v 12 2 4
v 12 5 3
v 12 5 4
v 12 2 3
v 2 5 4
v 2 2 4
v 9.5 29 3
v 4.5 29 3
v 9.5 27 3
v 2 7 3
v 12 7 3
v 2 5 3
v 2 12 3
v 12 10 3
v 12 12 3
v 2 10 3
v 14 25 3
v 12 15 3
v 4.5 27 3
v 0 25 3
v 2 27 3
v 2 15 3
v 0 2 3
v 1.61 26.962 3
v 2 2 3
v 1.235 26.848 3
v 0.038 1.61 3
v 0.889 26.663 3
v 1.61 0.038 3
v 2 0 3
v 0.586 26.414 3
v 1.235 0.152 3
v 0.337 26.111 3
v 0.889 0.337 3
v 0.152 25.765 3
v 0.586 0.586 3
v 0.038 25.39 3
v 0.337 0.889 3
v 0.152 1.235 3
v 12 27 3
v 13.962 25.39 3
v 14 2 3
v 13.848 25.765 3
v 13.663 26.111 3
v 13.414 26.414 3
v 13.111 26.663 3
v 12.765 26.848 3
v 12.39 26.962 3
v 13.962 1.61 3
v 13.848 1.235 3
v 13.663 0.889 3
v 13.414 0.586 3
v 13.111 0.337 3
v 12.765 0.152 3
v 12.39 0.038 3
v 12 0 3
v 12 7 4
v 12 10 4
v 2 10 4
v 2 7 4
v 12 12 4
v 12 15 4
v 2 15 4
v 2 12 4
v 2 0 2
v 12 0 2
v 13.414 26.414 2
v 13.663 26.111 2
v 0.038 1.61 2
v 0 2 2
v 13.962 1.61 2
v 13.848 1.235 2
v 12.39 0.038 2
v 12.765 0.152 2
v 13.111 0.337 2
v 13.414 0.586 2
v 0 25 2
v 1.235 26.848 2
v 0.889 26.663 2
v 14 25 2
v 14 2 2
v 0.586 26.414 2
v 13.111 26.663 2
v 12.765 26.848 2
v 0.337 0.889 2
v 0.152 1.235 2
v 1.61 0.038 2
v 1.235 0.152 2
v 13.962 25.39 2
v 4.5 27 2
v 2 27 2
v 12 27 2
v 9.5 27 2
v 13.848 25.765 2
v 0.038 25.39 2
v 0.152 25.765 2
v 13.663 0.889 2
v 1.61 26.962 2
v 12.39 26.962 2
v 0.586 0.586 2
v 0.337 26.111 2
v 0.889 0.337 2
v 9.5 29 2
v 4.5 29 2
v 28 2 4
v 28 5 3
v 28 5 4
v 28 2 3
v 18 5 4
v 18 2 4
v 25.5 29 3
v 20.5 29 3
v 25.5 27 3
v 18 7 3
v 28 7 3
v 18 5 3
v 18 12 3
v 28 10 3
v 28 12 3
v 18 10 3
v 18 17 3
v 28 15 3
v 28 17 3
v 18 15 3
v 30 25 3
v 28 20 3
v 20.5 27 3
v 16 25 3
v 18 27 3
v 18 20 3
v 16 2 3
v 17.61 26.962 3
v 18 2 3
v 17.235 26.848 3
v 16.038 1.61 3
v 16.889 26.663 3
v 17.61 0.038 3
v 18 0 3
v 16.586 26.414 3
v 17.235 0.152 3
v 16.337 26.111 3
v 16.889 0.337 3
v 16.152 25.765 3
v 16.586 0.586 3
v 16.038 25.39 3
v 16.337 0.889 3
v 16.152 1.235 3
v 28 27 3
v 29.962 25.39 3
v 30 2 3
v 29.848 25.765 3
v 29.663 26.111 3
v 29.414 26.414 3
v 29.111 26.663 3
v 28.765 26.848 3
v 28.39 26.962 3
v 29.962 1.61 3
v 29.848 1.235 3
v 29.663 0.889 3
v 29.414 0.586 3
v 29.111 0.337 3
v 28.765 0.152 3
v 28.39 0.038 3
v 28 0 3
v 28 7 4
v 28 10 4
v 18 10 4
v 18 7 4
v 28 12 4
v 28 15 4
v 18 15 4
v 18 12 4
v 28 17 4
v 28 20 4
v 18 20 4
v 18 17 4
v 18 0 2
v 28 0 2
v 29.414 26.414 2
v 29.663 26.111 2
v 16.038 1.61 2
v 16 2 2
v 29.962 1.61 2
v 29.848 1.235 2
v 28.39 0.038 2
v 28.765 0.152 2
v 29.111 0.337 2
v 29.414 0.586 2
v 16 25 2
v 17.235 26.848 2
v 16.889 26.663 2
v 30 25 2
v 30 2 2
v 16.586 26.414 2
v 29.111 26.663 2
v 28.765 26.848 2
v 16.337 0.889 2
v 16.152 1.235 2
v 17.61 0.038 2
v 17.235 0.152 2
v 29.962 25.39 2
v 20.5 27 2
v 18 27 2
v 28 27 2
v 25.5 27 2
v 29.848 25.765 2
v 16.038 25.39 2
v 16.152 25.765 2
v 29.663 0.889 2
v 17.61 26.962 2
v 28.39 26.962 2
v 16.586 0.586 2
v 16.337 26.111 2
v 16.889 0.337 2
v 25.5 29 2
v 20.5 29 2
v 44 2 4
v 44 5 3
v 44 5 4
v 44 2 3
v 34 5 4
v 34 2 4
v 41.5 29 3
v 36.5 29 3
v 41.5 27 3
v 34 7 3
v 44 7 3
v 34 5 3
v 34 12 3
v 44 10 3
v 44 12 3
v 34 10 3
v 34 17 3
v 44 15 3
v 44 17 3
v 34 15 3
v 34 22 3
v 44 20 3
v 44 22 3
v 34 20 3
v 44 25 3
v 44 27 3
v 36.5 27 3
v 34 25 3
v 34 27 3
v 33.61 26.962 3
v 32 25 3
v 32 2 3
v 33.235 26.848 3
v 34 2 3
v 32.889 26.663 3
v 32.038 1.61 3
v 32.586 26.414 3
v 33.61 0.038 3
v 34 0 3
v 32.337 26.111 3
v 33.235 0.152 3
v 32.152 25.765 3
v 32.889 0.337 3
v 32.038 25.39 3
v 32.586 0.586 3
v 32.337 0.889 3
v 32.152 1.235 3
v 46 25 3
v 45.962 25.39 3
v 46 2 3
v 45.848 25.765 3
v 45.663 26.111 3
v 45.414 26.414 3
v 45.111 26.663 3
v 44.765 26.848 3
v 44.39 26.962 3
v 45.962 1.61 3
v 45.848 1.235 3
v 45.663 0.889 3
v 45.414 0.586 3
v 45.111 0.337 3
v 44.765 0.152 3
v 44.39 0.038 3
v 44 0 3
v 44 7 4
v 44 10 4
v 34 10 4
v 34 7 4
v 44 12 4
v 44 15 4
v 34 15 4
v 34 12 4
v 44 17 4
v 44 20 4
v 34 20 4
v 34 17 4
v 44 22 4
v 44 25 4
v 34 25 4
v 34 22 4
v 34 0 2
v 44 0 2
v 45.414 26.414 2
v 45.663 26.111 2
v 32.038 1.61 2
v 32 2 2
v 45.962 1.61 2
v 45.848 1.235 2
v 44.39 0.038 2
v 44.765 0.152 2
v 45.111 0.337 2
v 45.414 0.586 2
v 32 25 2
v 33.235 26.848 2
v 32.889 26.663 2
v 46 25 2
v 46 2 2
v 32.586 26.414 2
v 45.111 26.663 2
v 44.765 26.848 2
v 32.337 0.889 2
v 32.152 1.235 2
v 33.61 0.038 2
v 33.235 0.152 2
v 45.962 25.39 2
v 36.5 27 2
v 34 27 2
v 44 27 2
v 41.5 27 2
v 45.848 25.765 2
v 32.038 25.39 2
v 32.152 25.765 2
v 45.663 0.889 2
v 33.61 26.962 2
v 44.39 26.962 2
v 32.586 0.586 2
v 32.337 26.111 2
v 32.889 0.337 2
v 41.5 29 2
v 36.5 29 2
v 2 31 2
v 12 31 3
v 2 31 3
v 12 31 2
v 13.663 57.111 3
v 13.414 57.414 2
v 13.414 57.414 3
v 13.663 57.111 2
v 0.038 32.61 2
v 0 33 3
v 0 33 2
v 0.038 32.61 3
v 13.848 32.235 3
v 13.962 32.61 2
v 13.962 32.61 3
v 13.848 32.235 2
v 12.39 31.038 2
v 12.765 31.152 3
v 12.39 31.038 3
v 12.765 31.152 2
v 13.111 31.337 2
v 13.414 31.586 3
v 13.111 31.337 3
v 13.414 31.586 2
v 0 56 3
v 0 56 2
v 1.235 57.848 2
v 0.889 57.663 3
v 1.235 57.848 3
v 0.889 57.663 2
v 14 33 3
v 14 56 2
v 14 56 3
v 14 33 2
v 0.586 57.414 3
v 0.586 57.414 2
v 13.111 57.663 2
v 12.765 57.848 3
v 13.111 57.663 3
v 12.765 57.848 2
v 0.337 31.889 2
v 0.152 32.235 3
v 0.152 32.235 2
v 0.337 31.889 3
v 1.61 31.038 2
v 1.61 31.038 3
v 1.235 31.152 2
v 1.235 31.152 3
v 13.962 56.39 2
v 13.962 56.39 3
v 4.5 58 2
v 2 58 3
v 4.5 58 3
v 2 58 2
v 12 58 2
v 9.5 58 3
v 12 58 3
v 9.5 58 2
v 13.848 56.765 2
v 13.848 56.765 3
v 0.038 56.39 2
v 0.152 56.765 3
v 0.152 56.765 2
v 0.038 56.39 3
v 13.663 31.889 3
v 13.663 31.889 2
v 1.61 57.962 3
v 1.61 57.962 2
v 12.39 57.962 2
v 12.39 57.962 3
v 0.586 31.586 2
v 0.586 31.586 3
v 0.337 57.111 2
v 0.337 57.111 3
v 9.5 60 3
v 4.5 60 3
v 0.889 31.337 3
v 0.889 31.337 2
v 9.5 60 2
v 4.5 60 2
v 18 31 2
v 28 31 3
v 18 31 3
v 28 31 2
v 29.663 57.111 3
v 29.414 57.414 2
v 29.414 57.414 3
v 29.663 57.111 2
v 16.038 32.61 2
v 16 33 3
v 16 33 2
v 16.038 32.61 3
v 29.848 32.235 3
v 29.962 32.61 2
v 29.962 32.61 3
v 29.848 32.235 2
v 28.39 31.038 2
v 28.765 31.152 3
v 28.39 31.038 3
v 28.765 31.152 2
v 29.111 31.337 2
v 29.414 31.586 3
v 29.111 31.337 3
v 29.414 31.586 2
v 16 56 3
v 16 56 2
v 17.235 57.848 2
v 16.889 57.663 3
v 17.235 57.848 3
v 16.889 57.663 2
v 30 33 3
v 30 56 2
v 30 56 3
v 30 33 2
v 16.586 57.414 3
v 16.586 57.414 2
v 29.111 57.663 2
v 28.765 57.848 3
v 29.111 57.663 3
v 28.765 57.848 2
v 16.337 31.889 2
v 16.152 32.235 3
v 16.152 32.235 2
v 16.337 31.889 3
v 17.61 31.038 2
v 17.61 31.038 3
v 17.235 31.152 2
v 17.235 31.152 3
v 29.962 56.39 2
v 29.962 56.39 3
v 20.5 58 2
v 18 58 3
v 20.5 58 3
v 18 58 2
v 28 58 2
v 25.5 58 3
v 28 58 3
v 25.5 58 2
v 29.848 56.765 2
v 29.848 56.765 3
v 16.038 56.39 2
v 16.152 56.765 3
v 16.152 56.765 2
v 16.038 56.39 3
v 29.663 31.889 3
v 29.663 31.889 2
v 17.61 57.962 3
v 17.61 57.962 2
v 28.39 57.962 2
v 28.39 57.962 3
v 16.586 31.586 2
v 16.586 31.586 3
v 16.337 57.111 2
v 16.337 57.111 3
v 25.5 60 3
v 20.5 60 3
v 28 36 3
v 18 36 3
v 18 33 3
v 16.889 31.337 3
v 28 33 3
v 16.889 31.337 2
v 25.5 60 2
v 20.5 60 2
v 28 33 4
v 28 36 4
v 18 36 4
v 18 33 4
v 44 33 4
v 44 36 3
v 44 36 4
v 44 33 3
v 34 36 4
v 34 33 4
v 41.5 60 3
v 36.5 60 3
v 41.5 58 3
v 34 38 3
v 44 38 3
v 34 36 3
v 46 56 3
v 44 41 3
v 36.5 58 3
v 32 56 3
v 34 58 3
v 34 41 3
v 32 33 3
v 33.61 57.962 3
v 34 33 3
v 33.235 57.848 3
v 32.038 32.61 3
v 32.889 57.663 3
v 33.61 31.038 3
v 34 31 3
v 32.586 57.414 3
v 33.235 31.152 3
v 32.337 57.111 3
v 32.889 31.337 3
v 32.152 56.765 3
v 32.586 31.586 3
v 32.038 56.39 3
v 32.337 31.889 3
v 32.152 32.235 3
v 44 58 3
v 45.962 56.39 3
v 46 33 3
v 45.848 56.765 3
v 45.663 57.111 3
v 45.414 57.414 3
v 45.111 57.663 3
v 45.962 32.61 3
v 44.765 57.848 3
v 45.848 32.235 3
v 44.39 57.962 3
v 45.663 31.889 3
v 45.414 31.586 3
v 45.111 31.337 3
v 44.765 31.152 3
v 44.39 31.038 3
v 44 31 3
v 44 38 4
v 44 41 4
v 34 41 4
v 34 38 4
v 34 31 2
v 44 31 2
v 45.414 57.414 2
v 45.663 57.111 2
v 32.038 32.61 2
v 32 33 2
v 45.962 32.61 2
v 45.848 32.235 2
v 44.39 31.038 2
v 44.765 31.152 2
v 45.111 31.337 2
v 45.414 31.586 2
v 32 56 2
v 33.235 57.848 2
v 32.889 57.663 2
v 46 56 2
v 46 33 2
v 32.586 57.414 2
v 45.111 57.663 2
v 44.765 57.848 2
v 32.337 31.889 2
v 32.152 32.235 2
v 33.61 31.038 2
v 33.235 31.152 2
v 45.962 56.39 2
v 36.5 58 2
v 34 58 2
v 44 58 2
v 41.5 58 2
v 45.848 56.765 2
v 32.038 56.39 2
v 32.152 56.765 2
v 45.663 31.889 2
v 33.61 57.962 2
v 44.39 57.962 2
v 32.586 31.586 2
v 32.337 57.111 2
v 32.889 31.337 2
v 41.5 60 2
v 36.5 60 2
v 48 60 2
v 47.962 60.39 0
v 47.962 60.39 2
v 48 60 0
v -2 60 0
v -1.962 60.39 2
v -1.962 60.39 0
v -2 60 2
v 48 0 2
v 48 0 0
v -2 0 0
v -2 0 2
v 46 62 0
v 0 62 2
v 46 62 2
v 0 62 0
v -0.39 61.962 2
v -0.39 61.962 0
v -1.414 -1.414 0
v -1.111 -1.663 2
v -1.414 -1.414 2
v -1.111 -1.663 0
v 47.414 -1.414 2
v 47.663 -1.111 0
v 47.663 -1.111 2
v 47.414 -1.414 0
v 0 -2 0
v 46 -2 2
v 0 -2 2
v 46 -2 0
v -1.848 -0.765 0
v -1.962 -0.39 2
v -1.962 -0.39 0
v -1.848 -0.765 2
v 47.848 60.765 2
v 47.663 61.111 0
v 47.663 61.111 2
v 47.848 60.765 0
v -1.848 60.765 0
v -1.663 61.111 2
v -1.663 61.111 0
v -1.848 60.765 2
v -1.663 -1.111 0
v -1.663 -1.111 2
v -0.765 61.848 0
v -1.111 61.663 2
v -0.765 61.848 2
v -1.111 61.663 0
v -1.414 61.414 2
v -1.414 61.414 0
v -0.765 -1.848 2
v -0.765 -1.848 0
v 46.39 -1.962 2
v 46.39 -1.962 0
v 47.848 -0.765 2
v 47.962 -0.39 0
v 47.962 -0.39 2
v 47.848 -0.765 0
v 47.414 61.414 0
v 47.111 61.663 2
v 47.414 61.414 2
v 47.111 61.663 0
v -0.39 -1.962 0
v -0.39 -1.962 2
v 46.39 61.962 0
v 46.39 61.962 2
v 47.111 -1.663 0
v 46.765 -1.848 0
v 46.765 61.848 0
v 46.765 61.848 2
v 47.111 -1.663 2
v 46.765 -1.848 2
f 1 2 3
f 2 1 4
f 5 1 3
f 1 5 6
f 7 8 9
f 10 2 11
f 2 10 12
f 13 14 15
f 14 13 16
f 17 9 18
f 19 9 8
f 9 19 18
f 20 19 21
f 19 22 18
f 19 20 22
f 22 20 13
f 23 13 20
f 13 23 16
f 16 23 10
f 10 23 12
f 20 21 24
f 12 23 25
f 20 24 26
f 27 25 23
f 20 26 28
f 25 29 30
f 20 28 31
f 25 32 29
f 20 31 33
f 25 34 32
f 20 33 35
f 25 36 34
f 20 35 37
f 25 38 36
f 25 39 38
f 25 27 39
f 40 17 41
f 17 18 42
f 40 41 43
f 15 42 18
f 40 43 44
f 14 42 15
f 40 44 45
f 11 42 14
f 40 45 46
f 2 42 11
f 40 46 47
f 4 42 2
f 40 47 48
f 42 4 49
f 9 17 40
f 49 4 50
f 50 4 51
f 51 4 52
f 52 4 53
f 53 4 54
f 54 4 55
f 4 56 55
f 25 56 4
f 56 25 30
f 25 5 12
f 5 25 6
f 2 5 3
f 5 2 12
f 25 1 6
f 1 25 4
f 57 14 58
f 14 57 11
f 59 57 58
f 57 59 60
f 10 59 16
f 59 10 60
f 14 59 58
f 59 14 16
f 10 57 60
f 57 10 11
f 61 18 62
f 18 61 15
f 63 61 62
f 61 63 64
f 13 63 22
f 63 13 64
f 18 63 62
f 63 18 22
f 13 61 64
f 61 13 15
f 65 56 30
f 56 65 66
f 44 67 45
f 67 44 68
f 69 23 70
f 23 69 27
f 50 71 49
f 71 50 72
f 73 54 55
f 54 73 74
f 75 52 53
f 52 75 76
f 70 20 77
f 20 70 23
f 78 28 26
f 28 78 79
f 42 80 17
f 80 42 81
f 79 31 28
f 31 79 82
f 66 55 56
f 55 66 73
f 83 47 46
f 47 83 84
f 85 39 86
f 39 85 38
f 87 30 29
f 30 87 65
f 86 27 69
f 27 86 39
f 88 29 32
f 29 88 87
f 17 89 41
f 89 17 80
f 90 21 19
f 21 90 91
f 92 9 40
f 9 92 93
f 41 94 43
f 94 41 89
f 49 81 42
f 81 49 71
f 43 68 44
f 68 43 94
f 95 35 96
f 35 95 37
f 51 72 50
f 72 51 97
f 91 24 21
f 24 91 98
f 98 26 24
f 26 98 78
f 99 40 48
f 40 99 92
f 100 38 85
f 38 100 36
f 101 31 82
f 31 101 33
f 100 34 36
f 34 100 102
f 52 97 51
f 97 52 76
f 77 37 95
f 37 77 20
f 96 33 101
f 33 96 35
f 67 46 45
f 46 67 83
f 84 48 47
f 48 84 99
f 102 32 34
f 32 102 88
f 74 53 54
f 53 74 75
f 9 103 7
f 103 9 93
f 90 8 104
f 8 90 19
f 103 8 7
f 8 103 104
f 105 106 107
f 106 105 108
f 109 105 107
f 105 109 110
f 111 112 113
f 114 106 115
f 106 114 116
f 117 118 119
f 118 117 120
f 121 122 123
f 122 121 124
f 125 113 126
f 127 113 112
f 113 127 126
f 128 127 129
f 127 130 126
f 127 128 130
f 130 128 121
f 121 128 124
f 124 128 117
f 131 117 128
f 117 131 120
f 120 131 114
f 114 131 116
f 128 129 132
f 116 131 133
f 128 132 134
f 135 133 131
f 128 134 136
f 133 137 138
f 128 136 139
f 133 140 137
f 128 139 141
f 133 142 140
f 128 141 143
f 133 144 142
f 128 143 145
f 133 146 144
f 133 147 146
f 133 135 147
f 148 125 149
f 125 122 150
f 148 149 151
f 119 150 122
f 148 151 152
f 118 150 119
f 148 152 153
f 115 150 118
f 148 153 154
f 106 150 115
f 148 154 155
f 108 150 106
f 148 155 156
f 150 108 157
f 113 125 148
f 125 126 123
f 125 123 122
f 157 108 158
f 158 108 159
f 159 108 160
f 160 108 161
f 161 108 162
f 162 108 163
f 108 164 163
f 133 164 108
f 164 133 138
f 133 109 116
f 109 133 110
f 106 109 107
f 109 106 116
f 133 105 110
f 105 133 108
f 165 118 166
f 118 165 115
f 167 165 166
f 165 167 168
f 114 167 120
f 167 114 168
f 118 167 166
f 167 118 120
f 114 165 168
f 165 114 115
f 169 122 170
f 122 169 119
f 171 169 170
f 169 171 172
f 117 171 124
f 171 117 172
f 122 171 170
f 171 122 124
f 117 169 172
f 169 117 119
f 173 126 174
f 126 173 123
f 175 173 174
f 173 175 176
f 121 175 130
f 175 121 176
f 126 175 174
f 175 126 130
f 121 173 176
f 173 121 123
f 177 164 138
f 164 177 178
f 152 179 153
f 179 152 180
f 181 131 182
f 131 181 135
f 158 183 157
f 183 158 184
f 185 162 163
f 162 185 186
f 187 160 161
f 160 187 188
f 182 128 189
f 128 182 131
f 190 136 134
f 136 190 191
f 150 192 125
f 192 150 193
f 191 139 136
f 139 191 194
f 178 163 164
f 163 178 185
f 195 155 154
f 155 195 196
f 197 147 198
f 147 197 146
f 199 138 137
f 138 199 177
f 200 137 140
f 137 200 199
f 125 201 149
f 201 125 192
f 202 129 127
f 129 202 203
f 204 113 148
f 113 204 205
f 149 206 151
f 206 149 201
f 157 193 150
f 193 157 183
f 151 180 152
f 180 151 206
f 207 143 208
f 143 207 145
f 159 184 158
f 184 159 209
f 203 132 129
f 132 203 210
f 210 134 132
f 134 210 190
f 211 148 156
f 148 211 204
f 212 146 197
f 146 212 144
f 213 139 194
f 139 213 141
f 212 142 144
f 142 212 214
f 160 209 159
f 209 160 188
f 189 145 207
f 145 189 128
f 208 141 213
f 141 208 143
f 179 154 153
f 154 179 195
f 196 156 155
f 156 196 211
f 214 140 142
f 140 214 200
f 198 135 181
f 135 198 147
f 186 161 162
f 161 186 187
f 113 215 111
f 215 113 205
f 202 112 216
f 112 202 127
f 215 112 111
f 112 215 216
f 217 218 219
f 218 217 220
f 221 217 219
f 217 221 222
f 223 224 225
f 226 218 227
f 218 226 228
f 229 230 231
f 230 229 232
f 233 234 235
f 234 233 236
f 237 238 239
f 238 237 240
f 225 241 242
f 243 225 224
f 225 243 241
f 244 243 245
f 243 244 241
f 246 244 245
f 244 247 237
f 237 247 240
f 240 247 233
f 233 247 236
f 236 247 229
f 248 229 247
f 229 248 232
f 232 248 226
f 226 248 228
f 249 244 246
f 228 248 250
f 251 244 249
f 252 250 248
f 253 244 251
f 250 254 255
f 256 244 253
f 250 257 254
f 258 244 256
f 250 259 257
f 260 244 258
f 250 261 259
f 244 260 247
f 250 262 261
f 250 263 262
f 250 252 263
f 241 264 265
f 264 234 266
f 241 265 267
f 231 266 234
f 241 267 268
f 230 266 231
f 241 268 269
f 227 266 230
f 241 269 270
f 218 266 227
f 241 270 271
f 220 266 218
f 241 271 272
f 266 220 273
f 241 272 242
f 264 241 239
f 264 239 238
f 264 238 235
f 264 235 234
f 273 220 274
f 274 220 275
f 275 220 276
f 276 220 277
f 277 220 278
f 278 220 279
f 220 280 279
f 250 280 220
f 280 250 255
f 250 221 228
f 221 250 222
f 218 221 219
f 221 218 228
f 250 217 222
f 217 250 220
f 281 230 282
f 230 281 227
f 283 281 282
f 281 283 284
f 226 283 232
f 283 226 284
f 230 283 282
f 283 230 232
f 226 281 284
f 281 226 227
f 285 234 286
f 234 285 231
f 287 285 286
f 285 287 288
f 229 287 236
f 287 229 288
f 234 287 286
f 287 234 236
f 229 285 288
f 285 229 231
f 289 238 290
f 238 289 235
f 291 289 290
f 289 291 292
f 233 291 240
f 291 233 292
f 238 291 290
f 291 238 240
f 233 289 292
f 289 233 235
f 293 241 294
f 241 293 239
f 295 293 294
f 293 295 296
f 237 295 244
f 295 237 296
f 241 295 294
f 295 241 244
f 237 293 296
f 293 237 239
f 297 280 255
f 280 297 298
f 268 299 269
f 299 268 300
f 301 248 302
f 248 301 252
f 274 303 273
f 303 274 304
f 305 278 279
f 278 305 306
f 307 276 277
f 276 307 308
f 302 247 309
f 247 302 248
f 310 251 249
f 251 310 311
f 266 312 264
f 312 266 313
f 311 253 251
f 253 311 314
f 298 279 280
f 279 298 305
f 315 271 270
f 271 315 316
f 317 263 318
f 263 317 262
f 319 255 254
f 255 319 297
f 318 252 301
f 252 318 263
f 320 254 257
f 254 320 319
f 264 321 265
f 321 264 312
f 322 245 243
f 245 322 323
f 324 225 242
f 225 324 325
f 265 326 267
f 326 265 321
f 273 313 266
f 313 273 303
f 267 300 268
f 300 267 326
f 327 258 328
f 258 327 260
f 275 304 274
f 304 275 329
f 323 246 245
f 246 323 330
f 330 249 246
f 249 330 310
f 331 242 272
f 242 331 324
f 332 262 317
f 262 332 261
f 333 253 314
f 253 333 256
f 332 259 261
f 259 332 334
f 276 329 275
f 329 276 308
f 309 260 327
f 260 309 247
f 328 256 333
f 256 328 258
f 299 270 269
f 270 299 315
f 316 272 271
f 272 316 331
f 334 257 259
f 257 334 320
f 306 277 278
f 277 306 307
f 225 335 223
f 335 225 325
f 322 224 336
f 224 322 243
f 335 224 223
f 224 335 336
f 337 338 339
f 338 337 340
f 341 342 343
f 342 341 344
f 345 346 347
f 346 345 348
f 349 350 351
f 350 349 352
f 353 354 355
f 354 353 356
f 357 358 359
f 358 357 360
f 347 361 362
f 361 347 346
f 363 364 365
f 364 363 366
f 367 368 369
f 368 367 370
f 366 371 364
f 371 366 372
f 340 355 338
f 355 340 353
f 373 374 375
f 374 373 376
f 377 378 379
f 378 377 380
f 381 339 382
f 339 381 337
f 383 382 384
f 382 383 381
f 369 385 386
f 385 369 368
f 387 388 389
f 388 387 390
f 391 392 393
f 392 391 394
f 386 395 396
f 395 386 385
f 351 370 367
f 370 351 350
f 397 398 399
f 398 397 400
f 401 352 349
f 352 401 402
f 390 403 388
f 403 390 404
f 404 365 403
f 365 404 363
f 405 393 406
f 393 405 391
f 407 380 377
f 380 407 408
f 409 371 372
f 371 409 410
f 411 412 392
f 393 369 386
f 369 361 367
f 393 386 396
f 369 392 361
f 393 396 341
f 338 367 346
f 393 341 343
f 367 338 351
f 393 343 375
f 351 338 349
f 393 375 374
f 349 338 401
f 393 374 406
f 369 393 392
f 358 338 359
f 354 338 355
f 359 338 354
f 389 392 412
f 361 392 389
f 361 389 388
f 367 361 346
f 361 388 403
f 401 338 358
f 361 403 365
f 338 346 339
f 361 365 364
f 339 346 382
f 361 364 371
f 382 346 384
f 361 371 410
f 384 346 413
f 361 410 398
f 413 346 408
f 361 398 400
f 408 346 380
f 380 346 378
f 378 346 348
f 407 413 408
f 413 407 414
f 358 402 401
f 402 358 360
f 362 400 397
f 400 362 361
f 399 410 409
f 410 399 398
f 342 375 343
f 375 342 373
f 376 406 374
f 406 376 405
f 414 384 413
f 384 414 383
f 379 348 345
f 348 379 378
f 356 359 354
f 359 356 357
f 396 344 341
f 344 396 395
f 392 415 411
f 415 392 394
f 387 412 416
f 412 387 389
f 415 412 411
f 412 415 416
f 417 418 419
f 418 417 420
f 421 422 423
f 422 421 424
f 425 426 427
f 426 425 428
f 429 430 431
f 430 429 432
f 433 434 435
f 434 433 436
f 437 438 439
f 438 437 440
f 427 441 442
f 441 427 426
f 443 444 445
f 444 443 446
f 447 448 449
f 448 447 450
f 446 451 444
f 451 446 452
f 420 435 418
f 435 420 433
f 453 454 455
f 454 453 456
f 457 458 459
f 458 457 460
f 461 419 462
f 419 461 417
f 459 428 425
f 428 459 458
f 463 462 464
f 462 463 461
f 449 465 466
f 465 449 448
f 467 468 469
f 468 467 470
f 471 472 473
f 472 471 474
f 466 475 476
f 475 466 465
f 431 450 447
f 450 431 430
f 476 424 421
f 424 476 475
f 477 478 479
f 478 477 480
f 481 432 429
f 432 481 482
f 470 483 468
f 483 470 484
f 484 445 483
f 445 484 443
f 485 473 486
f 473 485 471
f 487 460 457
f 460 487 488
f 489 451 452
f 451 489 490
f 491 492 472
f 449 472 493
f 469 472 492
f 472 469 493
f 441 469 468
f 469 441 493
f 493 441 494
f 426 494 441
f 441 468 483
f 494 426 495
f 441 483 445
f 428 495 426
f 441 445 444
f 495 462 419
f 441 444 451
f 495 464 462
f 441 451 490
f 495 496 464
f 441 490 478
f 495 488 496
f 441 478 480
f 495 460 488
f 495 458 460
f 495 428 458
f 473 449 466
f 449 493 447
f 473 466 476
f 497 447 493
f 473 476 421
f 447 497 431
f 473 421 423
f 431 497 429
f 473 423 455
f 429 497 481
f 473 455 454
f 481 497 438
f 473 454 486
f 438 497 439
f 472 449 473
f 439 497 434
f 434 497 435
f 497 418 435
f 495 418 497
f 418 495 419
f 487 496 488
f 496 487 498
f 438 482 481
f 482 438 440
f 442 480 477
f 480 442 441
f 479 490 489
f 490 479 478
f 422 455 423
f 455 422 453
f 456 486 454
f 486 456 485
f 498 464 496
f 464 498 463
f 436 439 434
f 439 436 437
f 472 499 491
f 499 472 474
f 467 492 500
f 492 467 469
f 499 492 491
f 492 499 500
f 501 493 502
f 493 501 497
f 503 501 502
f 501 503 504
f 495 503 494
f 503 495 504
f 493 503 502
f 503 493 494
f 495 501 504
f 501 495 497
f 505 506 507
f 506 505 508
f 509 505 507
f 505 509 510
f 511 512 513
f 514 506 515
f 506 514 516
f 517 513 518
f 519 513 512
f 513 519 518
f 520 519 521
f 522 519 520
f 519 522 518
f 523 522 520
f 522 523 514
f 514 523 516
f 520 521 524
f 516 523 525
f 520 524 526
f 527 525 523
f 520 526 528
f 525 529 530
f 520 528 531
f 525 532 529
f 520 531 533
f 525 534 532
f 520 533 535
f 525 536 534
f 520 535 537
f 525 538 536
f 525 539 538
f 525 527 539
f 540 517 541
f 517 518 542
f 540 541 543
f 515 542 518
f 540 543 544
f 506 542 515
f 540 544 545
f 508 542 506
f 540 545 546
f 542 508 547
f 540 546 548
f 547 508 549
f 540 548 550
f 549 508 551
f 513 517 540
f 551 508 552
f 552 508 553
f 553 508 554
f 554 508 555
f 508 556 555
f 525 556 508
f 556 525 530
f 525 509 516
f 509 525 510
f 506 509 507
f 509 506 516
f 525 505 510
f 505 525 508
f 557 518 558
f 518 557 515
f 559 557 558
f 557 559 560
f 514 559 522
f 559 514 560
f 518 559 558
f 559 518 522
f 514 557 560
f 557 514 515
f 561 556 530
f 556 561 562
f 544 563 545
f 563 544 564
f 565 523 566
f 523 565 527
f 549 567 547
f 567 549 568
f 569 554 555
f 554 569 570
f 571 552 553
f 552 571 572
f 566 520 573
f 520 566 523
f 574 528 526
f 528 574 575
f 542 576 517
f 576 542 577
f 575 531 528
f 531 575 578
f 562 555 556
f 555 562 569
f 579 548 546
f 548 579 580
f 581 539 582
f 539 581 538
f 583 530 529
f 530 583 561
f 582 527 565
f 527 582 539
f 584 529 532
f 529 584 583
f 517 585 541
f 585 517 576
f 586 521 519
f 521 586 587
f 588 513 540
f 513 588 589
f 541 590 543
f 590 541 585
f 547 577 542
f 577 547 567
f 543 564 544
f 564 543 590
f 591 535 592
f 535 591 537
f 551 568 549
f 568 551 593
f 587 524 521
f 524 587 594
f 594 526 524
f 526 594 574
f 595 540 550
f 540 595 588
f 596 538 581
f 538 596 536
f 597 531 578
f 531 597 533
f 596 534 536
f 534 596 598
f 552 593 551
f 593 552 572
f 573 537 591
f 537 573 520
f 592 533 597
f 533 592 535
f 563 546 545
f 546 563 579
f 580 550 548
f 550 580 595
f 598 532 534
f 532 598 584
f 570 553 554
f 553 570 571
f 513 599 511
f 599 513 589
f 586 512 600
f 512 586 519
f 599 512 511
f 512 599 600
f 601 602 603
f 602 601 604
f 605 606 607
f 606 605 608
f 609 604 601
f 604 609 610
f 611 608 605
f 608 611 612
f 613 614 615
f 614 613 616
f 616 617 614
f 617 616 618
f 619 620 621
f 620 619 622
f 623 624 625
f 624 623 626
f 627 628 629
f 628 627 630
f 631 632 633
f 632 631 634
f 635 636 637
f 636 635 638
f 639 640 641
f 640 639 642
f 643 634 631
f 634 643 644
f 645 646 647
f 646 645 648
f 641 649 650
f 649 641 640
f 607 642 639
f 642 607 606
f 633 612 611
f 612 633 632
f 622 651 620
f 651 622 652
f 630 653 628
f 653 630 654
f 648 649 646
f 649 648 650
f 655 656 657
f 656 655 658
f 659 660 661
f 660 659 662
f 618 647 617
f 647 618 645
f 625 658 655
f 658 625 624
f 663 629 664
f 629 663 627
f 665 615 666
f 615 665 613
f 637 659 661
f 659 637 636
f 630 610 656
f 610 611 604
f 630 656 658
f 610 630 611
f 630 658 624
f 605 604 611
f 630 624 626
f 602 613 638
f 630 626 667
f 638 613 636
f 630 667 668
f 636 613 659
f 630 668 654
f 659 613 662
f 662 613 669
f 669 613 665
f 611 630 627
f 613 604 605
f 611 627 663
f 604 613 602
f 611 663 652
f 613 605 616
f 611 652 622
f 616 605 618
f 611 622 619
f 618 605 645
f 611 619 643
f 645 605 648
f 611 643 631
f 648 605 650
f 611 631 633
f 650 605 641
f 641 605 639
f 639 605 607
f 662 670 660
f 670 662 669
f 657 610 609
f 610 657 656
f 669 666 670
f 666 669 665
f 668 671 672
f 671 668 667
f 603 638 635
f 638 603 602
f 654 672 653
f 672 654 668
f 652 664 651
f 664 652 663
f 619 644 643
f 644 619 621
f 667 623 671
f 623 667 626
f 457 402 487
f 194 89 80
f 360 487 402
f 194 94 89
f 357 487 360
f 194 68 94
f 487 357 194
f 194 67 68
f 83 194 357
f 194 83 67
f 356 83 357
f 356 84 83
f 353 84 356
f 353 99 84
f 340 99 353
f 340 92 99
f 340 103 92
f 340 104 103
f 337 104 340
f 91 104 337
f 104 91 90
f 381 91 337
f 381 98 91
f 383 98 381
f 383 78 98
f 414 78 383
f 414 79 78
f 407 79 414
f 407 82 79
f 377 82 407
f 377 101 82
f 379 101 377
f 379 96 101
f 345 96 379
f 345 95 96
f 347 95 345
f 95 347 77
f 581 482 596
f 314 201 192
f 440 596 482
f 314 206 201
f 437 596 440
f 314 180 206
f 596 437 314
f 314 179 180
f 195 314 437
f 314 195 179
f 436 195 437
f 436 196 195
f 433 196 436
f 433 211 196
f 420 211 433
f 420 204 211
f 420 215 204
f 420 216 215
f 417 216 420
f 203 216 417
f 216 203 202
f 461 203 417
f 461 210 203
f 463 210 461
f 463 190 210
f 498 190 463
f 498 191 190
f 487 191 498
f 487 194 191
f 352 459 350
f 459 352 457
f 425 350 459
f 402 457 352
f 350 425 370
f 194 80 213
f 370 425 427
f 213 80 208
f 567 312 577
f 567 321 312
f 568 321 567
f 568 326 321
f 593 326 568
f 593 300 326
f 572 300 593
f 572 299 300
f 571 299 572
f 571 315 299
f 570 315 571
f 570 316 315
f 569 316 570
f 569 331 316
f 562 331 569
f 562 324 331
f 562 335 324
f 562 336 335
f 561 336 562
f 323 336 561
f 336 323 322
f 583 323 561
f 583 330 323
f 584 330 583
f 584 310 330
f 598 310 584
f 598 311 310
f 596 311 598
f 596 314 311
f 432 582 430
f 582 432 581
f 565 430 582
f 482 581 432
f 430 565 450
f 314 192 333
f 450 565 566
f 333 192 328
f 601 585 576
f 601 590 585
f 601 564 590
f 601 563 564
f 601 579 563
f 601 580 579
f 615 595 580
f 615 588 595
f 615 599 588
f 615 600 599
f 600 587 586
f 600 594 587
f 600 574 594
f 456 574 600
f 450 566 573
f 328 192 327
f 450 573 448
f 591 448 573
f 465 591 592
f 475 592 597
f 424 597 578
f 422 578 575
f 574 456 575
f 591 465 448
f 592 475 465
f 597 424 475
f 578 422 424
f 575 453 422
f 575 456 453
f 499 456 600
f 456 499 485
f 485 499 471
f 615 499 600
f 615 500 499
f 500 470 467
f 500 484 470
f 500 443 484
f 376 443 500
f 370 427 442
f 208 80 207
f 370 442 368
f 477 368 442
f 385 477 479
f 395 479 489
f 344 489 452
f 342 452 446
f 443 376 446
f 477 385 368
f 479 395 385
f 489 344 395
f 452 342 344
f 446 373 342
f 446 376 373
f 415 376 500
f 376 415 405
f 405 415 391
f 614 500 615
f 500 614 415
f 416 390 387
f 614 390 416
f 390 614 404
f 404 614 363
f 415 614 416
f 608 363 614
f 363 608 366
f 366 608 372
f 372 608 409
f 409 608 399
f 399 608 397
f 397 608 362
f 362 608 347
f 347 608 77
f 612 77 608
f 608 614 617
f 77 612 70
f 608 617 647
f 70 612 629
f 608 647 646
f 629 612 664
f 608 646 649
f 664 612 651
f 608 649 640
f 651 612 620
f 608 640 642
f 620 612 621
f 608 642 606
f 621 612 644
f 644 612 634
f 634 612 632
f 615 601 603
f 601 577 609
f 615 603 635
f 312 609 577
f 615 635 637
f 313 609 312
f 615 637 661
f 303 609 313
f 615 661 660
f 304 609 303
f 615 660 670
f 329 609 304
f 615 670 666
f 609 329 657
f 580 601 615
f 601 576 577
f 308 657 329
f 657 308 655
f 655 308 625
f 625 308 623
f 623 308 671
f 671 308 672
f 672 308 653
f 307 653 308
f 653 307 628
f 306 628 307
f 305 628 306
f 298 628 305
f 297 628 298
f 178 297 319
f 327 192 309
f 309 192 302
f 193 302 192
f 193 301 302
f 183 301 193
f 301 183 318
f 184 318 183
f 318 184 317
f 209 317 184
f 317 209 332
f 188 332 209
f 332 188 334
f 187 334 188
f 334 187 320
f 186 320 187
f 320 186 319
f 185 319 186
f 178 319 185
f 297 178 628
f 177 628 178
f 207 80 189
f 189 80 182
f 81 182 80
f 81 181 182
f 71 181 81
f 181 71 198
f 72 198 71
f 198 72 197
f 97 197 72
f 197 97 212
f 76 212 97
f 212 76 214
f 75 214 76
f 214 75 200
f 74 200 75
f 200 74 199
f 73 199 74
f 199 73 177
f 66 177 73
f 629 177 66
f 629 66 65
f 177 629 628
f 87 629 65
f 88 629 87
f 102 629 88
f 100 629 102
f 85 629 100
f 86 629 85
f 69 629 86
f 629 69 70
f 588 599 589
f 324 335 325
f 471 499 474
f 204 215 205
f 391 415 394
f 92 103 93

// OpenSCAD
barre_w = 10;
barre_p = 3;

espace = 2;

p = barre_p*5+espace*4;

card();

module card() {
	color("gray")
		minkowski() {
			cube([barre_w*3+espace*8,p*2+espace*7,1]);
			cylinder(1,espace, espace, $fn=32, center=false);
		}
	for (y = [0:1])
		for(x = [0:2]) {
			translate([espace*x*3+barre_w*x+espace,espace*y*4+p*y+espace, 1])
				batterie((1-y)*3+x);
		}
}


/*
translate([0,-40,0])
	for(i = [0:5])
		translate([barre_w*2*i, 0,0])
			batterie(i);
//*/


module batterie(count) {
	minkowski() {
		cube([barre_w,p,1]);
		cylinder(1,espace, espace, $fn=32, center=false);
	}

	translate([barre_w/2,p+espace,1])
		cube([5,4,2], center=true);

	if (count>=1) 
		color("red") 
			for (i= [0:count-1]) 
				translate([0,i*barre_p+i*espace,2])
					cube([barre_w, barre_p,1]);
}
